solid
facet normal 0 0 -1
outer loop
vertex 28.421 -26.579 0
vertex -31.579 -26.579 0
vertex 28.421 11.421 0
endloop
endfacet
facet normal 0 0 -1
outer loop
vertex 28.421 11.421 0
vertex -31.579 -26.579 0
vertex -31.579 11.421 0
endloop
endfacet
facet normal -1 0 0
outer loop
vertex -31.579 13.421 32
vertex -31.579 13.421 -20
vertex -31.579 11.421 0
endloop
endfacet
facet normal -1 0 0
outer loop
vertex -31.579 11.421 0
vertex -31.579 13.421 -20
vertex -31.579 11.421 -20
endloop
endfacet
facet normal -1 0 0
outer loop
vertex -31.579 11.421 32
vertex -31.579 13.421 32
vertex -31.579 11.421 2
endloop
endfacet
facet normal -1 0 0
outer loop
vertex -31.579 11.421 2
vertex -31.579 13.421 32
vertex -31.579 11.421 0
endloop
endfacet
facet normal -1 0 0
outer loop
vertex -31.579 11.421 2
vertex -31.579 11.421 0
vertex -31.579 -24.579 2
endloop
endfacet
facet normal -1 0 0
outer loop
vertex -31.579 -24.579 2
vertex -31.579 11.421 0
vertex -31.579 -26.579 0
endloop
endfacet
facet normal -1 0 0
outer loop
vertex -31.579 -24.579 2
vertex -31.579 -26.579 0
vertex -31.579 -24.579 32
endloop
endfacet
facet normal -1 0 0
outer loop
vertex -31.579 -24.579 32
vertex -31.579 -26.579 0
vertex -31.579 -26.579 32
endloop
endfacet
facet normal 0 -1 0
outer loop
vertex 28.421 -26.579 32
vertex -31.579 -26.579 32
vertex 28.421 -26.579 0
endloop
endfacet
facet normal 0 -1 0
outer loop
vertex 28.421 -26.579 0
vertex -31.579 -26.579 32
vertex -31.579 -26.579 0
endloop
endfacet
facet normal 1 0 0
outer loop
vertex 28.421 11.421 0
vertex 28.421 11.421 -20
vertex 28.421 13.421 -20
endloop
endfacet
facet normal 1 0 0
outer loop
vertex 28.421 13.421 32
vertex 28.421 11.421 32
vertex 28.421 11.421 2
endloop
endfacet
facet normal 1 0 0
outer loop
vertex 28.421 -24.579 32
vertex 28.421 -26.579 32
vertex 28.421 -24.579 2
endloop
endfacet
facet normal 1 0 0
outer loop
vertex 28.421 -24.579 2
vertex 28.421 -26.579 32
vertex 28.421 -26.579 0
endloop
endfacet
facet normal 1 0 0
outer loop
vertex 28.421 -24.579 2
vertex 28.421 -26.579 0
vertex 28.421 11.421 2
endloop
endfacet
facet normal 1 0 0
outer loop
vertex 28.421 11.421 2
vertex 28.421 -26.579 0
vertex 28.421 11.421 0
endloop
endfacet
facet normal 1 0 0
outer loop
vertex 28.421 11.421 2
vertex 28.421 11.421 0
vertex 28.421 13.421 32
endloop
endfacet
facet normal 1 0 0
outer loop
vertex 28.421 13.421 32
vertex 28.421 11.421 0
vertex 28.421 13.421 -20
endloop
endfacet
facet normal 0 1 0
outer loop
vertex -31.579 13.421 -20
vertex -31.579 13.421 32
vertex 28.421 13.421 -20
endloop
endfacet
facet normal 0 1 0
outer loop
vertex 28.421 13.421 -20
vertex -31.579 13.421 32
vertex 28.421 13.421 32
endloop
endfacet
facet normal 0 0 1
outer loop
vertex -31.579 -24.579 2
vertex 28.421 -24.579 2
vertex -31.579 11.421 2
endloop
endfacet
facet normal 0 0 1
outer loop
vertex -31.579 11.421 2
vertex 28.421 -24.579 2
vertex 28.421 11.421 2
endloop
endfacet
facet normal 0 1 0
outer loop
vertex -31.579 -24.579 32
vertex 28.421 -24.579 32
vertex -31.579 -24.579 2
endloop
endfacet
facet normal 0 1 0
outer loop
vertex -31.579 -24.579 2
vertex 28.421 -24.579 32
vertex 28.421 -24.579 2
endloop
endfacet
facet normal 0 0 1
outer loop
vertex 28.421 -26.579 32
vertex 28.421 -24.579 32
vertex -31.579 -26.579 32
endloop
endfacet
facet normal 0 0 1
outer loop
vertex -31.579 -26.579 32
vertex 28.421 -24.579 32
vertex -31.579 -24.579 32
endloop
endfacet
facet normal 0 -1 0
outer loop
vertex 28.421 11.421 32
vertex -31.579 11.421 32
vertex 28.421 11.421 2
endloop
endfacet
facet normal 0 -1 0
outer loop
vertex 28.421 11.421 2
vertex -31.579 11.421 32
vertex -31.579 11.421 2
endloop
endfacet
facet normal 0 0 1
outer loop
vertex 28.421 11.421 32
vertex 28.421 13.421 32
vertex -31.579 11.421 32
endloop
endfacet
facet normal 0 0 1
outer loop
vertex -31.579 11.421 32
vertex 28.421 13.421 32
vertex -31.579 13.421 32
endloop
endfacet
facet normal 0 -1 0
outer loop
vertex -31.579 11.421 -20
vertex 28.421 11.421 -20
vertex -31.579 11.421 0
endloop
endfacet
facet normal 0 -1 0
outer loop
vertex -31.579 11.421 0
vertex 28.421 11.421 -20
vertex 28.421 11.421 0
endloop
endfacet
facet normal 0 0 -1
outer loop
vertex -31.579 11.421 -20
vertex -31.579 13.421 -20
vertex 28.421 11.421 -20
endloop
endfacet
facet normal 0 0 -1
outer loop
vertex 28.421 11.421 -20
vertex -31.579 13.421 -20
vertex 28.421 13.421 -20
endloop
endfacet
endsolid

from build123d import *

# Parameters (mm, degrees)
SKETCH_1_W      = 60
SKETCH_1_H      = 40
EXTRUDE_1_DEPTH = 2
SKETCH_2_W      = 60
SKETCH_2_H      = 2
EXTRUDE_2_DEPTH = 30
SKETCH_3_W      = 60
SKETCH_3_H      = 2
EXTRUDE_3_DEPTH = 20


with BuildPart() as part:
    # 草图1 → 凸台-拉伸1 (new body)
    with BuildSketch(Plane.XY):
        with Locations((-1.578947368, -6.578947368)):
            Rectangle(SKETCH_1_W, SKETCH_1_H)
    extrude(amount=EXTRUDE_1_DEPTH)

    # 草图2 → 凸台-拉伸2 (add)
    with BuildSketch(Plane.XY.offset(2)):
        with Locations((-1.578947368, 12.421052632)):
            Rectangle(SKETCH_2_W, SKETCH_2_H)
        with Locations((-1.578947368, -25.578947368)):
            Rectangle(SKETCH_2_W, SKETCH_2_H)
    extrude(amount=EXTRUDE_2_DEPTH)

    # 草图3 → 凸台-拉伸3 (add)
    with BuildSketch(Plane(origin=(0, 0, 0), x_dir=(-1, 0, 0), z_dir=(0, 0, -1))):
        with Locations((1.578947368, 12.421052632)):
            Rectangle(SKETCH_3_W, SKETCH_3_H)
    extrude(amount=EXTRUDE_3_DEPTH)


solid = part.part
